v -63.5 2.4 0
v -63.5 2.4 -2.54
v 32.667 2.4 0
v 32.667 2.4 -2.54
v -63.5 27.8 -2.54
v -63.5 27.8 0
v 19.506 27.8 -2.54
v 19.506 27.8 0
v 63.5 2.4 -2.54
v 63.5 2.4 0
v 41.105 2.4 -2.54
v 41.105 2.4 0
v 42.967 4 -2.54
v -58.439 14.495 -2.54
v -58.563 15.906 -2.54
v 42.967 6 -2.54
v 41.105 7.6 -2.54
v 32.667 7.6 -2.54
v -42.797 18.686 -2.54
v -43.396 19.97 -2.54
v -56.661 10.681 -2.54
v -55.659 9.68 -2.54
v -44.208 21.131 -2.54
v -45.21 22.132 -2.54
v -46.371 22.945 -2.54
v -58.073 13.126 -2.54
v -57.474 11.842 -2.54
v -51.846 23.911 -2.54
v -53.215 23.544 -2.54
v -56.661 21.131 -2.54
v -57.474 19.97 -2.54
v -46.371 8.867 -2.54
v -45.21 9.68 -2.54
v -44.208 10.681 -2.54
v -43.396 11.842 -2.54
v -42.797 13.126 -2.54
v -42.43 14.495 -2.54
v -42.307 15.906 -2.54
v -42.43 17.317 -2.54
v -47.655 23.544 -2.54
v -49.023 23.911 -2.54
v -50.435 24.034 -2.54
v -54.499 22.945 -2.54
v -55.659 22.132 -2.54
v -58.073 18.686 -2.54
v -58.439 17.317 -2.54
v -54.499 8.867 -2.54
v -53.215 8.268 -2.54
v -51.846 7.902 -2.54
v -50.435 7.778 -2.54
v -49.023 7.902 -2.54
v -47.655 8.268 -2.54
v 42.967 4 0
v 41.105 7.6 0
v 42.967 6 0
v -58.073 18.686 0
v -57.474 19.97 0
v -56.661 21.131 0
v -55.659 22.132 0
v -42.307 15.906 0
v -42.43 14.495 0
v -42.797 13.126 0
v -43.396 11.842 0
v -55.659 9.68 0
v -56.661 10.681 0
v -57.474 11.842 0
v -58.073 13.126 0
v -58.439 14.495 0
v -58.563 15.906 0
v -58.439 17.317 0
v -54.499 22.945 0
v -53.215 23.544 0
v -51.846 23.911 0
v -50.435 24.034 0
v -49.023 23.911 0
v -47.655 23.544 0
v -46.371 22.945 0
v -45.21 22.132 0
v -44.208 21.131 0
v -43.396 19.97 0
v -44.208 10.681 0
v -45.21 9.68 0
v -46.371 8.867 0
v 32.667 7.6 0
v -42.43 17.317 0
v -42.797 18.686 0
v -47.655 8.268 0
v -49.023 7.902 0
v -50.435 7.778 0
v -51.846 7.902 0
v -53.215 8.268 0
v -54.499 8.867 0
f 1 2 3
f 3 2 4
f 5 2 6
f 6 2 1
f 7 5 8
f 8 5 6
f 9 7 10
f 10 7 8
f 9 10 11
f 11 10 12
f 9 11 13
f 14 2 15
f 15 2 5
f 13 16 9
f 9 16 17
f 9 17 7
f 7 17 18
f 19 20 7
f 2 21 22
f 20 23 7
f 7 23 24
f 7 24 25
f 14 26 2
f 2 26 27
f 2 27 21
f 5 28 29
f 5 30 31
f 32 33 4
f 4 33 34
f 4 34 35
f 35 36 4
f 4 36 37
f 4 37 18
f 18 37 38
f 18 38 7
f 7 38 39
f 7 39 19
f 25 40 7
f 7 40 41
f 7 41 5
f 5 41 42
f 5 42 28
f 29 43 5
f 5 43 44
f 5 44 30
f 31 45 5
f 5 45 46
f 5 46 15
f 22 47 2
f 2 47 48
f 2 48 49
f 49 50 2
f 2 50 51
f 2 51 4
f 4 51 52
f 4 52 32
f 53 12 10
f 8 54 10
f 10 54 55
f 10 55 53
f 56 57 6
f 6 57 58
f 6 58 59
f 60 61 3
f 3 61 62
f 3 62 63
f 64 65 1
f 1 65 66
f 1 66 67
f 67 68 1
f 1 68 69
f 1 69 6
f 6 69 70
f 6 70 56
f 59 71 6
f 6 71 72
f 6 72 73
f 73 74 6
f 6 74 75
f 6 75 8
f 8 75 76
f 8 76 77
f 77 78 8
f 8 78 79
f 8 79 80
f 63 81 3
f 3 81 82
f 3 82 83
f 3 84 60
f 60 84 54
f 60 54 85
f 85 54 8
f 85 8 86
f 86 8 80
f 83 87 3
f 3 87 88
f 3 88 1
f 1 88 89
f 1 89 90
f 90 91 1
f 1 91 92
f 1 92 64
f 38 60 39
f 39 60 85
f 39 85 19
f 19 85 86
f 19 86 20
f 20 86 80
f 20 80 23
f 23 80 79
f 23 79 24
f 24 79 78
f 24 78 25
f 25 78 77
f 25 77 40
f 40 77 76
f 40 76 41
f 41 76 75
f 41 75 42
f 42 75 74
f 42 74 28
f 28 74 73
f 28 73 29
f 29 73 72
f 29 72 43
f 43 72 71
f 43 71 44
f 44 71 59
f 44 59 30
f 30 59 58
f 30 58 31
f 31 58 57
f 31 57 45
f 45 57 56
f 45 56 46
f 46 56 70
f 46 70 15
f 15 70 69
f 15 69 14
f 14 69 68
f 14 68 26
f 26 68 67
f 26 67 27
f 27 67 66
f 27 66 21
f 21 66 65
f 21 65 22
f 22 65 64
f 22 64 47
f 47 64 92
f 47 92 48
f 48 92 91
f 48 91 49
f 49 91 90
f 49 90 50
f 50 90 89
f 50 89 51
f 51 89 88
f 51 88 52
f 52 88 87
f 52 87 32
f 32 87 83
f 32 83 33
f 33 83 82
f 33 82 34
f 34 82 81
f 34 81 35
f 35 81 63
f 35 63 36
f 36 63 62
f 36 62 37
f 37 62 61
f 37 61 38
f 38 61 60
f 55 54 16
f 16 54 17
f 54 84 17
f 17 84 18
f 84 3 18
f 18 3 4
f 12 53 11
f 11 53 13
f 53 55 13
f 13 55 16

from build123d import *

# Parameters (mm, degrees)
BOSS_EXTRUDE1_DEPTH = 2.54
SKETCH3_R           = 8.128
CUT_EXTRUDE1_DEPTH  = 2.54
CUT_EXTRUDE2_DEPTH  = 3.54


with BuildPart() as part:
    # Sketch2 → Boss-Extrude1 (new body)
    with BuildSketch(Plane.XY):
        Polygon((-63.5, 2.4), (63.5, 2.4), (19.505909488, 27.8), (-63.5, 27.8), align=None)
    extrude(amount=-BOSS_EXTRUDE1_DEPTH)

    # Sketch3 → Cut-Extrude1 (cut)
    with BuildSketch(Plane.XY):
        with Locations((-50.434775134, 15.906072529)):
            Circle(SKETCH3_R)
    extrude(amount=-CUT_EXTRUDE1_DEPTH, mode=Mode.SUBTRACT)

    # Sketch4 → Cut-Extrude2 (cut, through all)
    with BuildSketch(Plane(origin=(0, 0, -2.54), x_dir=(-1, 0, 0), z_dir=(0, 0, -1))):
        Polygon((-41.105403431, 7.6), (-32.667342272, 7.6), (-32.667342272, 2.4), (-41.105403431, 2.4), (-42.967342272, 4), (-42.967342272, 6), align=None)
    extrude(amount=-CUT_EXTRUDE2_DEPTH, mode=Mode.SUBTRACT)


solid = part.part
